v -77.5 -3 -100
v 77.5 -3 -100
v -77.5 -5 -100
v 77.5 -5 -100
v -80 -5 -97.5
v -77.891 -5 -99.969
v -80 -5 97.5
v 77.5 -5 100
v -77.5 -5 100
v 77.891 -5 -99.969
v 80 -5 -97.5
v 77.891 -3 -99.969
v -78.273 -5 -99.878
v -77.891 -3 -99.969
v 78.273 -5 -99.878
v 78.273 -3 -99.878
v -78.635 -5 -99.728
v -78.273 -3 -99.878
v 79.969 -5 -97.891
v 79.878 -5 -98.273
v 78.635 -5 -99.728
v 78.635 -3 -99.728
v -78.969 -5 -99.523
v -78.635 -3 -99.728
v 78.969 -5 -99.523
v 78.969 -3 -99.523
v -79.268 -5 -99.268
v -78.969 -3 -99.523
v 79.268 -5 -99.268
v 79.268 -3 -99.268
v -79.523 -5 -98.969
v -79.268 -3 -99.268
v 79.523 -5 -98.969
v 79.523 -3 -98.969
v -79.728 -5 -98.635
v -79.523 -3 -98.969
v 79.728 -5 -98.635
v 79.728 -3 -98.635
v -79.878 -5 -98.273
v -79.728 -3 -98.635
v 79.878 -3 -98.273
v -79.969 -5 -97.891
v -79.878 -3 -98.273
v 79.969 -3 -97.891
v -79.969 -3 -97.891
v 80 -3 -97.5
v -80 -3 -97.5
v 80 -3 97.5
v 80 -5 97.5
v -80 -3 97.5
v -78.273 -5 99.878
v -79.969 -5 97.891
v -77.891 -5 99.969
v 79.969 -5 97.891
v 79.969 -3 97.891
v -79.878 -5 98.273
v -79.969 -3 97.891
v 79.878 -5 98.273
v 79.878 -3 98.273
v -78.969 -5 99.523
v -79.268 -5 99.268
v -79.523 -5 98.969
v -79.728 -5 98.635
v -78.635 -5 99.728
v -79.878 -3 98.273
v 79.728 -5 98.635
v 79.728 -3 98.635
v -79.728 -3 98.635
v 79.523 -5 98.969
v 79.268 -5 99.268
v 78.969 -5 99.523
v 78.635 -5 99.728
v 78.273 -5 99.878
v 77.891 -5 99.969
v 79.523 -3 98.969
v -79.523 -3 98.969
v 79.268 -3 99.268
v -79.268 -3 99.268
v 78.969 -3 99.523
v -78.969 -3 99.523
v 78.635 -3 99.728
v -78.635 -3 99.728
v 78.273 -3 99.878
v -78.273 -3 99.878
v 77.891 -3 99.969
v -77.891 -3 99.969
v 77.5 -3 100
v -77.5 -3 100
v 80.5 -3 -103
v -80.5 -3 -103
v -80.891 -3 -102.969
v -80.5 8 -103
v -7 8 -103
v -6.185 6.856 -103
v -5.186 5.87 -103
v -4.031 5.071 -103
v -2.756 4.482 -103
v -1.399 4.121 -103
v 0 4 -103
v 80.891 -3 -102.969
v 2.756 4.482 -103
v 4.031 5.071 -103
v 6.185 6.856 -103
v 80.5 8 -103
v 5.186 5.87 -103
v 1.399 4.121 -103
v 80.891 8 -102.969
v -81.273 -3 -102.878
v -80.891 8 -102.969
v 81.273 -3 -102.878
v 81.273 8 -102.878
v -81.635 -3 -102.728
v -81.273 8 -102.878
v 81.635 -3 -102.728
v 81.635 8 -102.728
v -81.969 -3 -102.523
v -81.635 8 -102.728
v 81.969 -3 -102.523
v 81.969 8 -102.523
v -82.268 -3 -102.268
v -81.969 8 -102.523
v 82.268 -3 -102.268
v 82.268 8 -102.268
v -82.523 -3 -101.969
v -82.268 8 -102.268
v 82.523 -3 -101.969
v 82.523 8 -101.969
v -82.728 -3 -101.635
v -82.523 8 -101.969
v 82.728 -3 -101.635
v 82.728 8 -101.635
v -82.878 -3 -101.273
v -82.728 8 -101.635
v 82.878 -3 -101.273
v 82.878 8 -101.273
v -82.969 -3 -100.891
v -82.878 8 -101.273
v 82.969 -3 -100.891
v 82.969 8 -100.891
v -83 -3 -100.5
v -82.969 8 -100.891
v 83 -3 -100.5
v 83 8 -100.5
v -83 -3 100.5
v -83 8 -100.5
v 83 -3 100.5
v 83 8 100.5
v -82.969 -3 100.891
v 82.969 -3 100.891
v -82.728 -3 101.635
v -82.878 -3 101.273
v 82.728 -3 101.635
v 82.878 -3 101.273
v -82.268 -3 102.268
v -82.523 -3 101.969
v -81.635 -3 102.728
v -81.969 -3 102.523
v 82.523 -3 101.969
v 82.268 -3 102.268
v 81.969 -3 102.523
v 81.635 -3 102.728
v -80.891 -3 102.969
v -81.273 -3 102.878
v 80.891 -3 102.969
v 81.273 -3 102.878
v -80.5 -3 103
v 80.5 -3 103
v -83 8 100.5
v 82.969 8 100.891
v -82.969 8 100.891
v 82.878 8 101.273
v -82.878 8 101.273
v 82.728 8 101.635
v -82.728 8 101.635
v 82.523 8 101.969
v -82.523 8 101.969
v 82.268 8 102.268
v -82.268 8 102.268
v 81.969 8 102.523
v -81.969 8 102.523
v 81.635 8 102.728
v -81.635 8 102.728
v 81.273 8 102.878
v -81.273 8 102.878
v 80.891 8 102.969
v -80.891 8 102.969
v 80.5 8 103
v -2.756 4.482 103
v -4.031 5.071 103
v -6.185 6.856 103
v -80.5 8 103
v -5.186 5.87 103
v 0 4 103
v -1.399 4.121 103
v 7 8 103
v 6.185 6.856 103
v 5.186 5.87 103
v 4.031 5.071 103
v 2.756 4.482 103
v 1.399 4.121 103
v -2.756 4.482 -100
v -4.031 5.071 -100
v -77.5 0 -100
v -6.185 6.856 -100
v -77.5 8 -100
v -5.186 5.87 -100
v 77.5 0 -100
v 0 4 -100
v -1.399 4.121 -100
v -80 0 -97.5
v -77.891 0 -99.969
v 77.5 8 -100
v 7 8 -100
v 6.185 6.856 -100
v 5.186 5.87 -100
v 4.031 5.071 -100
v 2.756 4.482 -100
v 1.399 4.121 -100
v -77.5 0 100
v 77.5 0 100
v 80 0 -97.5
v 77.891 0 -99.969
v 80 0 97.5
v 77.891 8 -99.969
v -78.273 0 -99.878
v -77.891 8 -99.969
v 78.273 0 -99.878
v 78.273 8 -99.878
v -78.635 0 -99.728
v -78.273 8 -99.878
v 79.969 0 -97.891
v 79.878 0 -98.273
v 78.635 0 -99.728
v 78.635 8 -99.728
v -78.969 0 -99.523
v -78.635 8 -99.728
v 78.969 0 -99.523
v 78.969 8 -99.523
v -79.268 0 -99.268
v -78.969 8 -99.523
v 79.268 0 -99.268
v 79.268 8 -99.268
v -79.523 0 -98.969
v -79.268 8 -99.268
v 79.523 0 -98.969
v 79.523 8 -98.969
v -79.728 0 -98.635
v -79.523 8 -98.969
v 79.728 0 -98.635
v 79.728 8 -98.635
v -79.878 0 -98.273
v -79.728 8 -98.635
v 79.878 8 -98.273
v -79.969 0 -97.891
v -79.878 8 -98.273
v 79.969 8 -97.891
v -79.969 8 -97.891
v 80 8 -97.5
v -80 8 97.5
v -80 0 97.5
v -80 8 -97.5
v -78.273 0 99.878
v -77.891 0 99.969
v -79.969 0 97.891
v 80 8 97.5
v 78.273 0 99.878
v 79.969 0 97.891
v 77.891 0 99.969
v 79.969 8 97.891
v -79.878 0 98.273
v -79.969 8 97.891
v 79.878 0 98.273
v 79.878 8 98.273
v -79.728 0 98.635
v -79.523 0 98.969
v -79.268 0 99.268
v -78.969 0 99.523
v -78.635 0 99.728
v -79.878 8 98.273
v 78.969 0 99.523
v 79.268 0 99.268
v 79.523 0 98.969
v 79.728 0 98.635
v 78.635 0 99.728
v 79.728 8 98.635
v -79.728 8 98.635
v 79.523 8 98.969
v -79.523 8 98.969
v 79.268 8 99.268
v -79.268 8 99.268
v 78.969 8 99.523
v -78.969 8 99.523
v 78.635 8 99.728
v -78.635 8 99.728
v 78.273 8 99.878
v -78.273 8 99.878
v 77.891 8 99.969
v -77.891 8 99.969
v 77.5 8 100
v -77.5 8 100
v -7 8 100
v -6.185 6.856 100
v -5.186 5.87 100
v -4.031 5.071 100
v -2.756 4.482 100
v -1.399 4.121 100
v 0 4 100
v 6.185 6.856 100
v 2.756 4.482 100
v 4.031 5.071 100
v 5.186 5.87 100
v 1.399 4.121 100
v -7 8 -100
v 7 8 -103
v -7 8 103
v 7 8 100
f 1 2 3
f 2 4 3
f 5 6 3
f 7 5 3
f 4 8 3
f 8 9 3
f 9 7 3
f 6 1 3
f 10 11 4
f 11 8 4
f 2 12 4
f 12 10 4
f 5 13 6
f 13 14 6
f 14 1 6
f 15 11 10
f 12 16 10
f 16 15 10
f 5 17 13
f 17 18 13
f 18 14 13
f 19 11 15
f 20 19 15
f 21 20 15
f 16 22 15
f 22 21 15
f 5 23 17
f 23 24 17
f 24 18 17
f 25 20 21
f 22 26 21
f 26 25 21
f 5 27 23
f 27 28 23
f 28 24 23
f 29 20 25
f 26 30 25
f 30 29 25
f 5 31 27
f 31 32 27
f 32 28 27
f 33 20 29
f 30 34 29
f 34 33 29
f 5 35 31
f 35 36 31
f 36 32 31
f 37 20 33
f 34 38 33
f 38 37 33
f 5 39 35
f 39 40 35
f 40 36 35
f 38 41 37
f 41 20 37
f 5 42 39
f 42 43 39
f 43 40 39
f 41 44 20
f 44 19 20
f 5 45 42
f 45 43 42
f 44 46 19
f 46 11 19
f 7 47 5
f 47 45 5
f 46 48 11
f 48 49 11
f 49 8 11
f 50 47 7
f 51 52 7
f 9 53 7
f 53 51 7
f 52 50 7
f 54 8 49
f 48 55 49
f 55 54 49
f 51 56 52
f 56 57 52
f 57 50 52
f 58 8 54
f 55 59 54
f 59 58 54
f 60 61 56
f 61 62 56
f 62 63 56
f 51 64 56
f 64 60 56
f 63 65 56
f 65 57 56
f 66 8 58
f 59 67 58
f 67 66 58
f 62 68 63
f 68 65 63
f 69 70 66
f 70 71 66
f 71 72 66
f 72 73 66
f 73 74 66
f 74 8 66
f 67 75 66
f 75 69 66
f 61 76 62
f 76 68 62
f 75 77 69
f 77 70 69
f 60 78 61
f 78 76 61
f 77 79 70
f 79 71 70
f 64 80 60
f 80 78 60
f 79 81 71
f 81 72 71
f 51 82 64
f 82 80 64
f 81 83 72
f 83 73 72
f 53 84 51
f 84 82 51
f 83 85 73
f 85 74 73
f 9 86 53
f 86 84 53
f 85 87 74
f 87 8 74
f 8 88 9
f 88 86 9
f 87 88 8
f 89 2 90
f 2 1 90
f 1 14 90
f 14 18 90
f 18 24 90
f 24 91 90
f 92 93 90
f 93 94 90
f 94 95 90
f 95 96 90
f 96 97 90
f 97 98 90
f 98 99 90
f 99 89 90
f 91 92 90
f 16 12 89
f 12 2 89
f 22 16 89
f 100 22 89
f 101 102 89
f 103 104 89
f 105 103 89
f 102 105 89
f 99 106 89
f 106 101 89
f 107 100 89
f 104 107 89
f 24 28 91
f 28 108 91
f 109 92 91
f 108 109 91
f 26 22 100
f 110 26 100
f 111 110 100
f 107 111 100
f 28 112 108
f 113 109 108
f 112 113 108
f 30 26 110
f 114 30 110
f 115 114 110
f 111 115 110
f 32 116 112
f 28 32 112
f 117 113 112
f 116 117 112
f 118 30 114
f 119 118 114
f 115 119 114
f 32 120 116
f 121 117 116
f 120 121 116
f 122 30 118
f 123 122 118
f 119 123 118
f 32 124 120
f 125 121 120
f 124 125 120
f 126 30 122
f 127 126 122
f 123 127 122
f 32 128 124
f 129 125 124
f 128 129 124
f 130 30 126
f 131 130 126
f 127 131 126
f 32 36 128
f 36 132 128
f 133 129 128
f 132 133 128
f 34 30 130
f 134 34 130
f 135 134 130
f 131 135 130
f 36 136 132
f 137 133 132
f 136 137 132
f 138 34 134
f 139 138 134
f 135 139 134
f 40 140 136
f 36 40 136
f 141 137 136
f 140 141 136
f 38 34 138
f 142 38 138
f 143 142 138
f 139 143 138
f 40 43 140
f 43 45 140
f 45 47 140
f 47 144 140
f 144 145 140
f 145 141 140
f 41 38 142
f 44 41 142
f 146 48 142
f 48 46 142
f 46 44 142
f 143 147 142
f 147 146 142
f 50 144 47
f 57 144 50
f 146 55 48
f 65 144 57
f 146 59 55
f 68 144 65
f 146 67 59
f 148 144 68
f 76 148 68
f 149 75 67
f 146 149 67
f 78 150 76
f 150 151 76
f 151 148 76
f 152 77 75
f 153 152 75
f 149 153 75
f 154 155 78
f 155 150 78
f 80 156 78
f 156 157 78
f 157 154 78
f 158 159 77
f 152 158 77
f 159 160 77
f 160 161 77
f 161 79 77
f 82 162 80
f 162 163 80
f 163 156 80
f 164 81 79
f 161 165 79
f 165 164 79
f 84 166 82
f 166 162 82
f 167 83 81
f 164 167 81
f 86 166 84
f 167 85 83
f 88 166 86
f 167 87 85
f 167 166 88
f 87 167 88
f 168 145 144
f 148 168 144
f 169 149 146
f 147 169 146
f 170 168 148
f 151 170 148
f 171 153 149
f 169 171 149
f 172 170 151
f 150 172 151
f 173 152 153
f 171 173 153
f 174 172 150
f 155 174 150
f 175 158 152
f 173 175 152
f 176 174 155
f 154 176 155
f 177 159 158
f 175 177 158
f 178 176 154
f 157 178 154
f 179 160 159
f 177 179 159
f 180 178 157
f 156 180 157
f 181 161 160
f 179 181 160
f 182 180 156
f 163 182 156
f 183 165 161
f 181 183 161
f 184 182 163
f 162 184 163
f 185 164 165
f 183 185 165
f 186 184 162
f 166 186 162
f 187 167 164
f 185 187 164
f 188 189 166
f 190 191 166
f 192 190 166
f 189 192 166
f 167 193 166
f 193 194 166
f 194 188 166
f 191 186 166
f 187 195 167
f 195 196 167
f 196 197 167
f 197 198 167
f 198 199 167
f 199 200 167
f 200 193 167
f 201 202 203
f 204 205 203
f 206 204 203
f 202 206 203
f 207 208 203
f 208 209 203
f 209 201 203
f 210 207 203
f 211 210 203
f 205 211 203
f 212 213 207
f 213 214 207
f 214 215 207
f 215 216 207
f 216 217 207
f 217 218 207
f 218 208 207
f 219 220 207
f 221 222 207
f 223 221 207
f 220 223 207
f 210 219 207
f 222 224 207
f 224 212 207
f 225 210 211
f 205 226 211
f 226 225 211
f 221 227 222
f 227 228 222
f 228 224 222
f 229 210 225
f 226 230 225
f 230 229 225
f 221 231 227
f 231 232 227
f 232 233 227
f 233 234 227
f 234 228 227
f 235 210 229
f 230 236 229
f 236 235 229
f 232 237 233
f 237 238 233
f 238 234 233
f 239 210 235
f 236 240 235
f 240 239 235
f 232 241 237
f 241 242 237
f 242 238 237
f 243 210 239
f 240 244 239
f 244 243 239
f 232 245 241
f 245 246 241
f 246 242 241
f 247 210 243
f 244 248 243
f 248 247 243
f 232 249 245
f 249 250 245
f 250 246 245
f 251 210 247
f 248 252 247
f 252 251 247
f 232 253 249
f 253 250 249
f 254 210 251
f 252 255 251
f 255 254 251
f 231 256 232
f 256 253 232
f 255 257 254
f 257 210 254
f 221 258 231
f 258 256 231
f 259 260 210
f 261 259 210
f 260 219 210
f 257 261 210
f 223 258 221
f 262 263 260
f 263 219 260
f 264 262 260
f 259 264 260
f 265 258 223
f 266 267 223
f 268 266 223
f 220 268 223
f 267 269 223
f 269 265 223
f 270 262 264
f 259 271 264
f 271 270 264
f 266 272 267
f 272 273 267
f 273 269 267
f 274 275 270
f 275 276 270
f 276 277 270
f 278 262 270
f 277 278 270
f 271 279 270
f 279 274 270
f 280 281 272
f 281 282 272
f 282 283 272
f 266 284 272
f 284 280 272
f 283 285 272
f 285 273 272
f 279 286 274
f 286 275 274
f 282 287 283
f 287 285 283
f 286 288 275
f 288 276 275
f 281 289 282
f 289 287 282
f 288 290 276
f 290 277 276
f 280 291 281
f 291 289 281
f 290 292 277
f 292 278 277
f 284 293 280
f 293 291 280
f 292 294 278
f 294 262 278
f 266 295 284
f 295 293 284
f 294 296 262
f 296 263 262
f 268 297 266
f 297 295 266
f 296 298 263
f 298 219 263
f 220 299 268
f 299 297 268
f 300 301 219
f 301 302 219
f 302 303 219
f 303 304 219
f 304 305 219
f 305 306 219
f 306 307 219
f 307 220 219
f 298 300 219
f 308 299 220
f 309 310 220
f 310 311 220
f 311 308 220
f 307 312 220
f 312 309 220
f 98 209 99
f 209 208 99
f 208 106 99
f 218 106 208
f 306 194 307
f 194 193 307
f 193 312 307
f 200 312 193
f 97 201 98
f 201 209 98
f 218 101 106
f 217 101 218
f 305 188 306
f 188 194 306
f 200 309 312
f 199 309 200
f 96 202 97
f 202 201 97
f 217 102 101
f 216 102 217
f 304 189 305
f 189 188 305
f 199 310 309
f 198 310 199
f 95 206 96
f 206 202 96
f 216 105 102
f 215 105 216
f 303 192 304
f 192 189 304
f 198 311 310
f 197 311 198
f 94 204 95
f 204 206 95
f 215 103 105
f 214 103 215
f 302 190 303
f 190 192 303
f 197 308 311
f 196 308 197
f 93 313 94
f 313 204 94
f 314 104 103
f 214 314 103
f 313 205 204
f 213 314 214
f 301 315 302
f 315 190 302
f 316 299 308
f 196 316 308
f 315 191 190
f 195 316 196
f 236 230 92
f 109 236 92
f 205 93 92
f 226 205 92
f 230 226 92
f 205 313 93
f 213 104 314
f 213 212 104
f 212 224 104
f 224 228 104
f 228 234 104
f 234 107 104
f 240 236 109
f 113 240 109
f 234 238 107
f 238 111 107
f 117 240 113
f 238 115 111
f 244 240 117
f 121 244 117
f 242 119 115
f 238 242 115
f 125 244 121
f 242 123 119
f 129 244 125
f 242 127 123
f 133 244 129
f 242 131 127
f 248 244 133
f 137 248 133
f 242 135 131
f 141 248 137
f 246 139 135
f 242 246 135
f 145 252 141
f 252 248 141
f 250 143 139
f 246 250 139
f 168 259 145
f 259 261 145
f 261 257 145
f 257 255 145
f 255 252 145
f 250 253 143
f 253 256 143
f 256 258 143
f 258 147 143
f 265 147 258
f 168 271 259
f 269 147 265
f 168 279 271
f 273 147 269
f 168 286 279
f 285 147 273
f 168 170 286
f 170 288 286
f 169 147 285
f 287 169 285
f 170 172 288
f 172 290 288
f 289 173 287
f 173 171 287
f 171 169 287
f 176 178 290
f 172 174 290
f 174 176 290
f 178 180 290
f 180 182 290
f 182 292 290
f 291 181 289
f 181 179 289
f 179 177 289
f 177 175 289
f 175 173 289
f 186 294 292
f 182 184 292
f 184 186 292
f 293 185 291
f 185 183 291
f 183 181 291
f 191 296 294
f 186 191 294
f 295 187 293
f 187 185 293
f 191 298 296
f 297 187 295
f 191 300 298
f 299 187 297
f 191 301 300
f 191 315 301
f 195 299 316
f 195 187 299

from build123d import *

# Parameters (mm, degrees)
SKETCH1_W           = 160
SKETCH1_H           = 200
BOSS_EXTRUDE1_DEPTH = 8
SHELL1_T            = 3
SKETCH2_W           = 160
SKETCH2_H           = 200
BOSS_EXTRUDE2_DEPTH = 2
FILLET1_R           = 2.5
CUT_EXTRUDE4_DEPTH  = 223.236360661


with BuildPart() as part:
    # Sketch1 → Boss-Extrude1 (new body)
    with BuildSketch(Plane(origin=(0, 0, 0), x_dir=(1, 0, 0), z_dir=(0, 1, 0))):
        Rectangle(SKETCH1_W, SKETCH1_H)
    extrude(amount=BOSS_EXTRUDE1_DEPTH)

    # Shell1
    shell1_openings = [part.faces().sort_by_distance(p)[0] for p in [
        (0, 8, 0),
    ]]
    offset(amount=SHELL1_T, openings=shell1_openings, kind=Kind.INTERSECTION)

    # Sketch2 → Boss-Extrude2 (add)
    with BuildSketch(Plane.XZ.offset(3)):
        Rectangle(SKETCH2_W, SKETCH2_H)
    extrude(amount=BOSS_EXTRUDE2_DEPTH)

    # Fillet1
    fillet1_edges = [part.edges().sort_by_distance(p)[0] for p in [
        (-80, 4, -100),
        (-80, 4, 100),
        (80, 4, 100),
        (80, 4, -100),
        (-80, -4, 100),
        (-80, -4, -100),
        (80, -4, -100),
        (80, -4, 100),
        (-83, 2.5, -103),
        (83, 2.5, -103),
        (83, 2.5, 103),
        (-83, 2.5, 103),
    ]]
    fillet(fillet1_edges, radius=FILLET1_R)

    # Sketch5 → Cut-Extrude4 (cut, through all)
    with BuildSketch(Plane.XY.offset(103)):
        with BuildLine():
            Line((0, 8), (-7, 8))
            ThreePointArc((-7, 8), (0, 4), (7, 8))
            Line((7, 8), (0, 8))
        make_face()
    extrude(amount=-CUT_EXTRUDE4_DEPTH, mode=Mode.SUBTRACT)


solid = part.part
